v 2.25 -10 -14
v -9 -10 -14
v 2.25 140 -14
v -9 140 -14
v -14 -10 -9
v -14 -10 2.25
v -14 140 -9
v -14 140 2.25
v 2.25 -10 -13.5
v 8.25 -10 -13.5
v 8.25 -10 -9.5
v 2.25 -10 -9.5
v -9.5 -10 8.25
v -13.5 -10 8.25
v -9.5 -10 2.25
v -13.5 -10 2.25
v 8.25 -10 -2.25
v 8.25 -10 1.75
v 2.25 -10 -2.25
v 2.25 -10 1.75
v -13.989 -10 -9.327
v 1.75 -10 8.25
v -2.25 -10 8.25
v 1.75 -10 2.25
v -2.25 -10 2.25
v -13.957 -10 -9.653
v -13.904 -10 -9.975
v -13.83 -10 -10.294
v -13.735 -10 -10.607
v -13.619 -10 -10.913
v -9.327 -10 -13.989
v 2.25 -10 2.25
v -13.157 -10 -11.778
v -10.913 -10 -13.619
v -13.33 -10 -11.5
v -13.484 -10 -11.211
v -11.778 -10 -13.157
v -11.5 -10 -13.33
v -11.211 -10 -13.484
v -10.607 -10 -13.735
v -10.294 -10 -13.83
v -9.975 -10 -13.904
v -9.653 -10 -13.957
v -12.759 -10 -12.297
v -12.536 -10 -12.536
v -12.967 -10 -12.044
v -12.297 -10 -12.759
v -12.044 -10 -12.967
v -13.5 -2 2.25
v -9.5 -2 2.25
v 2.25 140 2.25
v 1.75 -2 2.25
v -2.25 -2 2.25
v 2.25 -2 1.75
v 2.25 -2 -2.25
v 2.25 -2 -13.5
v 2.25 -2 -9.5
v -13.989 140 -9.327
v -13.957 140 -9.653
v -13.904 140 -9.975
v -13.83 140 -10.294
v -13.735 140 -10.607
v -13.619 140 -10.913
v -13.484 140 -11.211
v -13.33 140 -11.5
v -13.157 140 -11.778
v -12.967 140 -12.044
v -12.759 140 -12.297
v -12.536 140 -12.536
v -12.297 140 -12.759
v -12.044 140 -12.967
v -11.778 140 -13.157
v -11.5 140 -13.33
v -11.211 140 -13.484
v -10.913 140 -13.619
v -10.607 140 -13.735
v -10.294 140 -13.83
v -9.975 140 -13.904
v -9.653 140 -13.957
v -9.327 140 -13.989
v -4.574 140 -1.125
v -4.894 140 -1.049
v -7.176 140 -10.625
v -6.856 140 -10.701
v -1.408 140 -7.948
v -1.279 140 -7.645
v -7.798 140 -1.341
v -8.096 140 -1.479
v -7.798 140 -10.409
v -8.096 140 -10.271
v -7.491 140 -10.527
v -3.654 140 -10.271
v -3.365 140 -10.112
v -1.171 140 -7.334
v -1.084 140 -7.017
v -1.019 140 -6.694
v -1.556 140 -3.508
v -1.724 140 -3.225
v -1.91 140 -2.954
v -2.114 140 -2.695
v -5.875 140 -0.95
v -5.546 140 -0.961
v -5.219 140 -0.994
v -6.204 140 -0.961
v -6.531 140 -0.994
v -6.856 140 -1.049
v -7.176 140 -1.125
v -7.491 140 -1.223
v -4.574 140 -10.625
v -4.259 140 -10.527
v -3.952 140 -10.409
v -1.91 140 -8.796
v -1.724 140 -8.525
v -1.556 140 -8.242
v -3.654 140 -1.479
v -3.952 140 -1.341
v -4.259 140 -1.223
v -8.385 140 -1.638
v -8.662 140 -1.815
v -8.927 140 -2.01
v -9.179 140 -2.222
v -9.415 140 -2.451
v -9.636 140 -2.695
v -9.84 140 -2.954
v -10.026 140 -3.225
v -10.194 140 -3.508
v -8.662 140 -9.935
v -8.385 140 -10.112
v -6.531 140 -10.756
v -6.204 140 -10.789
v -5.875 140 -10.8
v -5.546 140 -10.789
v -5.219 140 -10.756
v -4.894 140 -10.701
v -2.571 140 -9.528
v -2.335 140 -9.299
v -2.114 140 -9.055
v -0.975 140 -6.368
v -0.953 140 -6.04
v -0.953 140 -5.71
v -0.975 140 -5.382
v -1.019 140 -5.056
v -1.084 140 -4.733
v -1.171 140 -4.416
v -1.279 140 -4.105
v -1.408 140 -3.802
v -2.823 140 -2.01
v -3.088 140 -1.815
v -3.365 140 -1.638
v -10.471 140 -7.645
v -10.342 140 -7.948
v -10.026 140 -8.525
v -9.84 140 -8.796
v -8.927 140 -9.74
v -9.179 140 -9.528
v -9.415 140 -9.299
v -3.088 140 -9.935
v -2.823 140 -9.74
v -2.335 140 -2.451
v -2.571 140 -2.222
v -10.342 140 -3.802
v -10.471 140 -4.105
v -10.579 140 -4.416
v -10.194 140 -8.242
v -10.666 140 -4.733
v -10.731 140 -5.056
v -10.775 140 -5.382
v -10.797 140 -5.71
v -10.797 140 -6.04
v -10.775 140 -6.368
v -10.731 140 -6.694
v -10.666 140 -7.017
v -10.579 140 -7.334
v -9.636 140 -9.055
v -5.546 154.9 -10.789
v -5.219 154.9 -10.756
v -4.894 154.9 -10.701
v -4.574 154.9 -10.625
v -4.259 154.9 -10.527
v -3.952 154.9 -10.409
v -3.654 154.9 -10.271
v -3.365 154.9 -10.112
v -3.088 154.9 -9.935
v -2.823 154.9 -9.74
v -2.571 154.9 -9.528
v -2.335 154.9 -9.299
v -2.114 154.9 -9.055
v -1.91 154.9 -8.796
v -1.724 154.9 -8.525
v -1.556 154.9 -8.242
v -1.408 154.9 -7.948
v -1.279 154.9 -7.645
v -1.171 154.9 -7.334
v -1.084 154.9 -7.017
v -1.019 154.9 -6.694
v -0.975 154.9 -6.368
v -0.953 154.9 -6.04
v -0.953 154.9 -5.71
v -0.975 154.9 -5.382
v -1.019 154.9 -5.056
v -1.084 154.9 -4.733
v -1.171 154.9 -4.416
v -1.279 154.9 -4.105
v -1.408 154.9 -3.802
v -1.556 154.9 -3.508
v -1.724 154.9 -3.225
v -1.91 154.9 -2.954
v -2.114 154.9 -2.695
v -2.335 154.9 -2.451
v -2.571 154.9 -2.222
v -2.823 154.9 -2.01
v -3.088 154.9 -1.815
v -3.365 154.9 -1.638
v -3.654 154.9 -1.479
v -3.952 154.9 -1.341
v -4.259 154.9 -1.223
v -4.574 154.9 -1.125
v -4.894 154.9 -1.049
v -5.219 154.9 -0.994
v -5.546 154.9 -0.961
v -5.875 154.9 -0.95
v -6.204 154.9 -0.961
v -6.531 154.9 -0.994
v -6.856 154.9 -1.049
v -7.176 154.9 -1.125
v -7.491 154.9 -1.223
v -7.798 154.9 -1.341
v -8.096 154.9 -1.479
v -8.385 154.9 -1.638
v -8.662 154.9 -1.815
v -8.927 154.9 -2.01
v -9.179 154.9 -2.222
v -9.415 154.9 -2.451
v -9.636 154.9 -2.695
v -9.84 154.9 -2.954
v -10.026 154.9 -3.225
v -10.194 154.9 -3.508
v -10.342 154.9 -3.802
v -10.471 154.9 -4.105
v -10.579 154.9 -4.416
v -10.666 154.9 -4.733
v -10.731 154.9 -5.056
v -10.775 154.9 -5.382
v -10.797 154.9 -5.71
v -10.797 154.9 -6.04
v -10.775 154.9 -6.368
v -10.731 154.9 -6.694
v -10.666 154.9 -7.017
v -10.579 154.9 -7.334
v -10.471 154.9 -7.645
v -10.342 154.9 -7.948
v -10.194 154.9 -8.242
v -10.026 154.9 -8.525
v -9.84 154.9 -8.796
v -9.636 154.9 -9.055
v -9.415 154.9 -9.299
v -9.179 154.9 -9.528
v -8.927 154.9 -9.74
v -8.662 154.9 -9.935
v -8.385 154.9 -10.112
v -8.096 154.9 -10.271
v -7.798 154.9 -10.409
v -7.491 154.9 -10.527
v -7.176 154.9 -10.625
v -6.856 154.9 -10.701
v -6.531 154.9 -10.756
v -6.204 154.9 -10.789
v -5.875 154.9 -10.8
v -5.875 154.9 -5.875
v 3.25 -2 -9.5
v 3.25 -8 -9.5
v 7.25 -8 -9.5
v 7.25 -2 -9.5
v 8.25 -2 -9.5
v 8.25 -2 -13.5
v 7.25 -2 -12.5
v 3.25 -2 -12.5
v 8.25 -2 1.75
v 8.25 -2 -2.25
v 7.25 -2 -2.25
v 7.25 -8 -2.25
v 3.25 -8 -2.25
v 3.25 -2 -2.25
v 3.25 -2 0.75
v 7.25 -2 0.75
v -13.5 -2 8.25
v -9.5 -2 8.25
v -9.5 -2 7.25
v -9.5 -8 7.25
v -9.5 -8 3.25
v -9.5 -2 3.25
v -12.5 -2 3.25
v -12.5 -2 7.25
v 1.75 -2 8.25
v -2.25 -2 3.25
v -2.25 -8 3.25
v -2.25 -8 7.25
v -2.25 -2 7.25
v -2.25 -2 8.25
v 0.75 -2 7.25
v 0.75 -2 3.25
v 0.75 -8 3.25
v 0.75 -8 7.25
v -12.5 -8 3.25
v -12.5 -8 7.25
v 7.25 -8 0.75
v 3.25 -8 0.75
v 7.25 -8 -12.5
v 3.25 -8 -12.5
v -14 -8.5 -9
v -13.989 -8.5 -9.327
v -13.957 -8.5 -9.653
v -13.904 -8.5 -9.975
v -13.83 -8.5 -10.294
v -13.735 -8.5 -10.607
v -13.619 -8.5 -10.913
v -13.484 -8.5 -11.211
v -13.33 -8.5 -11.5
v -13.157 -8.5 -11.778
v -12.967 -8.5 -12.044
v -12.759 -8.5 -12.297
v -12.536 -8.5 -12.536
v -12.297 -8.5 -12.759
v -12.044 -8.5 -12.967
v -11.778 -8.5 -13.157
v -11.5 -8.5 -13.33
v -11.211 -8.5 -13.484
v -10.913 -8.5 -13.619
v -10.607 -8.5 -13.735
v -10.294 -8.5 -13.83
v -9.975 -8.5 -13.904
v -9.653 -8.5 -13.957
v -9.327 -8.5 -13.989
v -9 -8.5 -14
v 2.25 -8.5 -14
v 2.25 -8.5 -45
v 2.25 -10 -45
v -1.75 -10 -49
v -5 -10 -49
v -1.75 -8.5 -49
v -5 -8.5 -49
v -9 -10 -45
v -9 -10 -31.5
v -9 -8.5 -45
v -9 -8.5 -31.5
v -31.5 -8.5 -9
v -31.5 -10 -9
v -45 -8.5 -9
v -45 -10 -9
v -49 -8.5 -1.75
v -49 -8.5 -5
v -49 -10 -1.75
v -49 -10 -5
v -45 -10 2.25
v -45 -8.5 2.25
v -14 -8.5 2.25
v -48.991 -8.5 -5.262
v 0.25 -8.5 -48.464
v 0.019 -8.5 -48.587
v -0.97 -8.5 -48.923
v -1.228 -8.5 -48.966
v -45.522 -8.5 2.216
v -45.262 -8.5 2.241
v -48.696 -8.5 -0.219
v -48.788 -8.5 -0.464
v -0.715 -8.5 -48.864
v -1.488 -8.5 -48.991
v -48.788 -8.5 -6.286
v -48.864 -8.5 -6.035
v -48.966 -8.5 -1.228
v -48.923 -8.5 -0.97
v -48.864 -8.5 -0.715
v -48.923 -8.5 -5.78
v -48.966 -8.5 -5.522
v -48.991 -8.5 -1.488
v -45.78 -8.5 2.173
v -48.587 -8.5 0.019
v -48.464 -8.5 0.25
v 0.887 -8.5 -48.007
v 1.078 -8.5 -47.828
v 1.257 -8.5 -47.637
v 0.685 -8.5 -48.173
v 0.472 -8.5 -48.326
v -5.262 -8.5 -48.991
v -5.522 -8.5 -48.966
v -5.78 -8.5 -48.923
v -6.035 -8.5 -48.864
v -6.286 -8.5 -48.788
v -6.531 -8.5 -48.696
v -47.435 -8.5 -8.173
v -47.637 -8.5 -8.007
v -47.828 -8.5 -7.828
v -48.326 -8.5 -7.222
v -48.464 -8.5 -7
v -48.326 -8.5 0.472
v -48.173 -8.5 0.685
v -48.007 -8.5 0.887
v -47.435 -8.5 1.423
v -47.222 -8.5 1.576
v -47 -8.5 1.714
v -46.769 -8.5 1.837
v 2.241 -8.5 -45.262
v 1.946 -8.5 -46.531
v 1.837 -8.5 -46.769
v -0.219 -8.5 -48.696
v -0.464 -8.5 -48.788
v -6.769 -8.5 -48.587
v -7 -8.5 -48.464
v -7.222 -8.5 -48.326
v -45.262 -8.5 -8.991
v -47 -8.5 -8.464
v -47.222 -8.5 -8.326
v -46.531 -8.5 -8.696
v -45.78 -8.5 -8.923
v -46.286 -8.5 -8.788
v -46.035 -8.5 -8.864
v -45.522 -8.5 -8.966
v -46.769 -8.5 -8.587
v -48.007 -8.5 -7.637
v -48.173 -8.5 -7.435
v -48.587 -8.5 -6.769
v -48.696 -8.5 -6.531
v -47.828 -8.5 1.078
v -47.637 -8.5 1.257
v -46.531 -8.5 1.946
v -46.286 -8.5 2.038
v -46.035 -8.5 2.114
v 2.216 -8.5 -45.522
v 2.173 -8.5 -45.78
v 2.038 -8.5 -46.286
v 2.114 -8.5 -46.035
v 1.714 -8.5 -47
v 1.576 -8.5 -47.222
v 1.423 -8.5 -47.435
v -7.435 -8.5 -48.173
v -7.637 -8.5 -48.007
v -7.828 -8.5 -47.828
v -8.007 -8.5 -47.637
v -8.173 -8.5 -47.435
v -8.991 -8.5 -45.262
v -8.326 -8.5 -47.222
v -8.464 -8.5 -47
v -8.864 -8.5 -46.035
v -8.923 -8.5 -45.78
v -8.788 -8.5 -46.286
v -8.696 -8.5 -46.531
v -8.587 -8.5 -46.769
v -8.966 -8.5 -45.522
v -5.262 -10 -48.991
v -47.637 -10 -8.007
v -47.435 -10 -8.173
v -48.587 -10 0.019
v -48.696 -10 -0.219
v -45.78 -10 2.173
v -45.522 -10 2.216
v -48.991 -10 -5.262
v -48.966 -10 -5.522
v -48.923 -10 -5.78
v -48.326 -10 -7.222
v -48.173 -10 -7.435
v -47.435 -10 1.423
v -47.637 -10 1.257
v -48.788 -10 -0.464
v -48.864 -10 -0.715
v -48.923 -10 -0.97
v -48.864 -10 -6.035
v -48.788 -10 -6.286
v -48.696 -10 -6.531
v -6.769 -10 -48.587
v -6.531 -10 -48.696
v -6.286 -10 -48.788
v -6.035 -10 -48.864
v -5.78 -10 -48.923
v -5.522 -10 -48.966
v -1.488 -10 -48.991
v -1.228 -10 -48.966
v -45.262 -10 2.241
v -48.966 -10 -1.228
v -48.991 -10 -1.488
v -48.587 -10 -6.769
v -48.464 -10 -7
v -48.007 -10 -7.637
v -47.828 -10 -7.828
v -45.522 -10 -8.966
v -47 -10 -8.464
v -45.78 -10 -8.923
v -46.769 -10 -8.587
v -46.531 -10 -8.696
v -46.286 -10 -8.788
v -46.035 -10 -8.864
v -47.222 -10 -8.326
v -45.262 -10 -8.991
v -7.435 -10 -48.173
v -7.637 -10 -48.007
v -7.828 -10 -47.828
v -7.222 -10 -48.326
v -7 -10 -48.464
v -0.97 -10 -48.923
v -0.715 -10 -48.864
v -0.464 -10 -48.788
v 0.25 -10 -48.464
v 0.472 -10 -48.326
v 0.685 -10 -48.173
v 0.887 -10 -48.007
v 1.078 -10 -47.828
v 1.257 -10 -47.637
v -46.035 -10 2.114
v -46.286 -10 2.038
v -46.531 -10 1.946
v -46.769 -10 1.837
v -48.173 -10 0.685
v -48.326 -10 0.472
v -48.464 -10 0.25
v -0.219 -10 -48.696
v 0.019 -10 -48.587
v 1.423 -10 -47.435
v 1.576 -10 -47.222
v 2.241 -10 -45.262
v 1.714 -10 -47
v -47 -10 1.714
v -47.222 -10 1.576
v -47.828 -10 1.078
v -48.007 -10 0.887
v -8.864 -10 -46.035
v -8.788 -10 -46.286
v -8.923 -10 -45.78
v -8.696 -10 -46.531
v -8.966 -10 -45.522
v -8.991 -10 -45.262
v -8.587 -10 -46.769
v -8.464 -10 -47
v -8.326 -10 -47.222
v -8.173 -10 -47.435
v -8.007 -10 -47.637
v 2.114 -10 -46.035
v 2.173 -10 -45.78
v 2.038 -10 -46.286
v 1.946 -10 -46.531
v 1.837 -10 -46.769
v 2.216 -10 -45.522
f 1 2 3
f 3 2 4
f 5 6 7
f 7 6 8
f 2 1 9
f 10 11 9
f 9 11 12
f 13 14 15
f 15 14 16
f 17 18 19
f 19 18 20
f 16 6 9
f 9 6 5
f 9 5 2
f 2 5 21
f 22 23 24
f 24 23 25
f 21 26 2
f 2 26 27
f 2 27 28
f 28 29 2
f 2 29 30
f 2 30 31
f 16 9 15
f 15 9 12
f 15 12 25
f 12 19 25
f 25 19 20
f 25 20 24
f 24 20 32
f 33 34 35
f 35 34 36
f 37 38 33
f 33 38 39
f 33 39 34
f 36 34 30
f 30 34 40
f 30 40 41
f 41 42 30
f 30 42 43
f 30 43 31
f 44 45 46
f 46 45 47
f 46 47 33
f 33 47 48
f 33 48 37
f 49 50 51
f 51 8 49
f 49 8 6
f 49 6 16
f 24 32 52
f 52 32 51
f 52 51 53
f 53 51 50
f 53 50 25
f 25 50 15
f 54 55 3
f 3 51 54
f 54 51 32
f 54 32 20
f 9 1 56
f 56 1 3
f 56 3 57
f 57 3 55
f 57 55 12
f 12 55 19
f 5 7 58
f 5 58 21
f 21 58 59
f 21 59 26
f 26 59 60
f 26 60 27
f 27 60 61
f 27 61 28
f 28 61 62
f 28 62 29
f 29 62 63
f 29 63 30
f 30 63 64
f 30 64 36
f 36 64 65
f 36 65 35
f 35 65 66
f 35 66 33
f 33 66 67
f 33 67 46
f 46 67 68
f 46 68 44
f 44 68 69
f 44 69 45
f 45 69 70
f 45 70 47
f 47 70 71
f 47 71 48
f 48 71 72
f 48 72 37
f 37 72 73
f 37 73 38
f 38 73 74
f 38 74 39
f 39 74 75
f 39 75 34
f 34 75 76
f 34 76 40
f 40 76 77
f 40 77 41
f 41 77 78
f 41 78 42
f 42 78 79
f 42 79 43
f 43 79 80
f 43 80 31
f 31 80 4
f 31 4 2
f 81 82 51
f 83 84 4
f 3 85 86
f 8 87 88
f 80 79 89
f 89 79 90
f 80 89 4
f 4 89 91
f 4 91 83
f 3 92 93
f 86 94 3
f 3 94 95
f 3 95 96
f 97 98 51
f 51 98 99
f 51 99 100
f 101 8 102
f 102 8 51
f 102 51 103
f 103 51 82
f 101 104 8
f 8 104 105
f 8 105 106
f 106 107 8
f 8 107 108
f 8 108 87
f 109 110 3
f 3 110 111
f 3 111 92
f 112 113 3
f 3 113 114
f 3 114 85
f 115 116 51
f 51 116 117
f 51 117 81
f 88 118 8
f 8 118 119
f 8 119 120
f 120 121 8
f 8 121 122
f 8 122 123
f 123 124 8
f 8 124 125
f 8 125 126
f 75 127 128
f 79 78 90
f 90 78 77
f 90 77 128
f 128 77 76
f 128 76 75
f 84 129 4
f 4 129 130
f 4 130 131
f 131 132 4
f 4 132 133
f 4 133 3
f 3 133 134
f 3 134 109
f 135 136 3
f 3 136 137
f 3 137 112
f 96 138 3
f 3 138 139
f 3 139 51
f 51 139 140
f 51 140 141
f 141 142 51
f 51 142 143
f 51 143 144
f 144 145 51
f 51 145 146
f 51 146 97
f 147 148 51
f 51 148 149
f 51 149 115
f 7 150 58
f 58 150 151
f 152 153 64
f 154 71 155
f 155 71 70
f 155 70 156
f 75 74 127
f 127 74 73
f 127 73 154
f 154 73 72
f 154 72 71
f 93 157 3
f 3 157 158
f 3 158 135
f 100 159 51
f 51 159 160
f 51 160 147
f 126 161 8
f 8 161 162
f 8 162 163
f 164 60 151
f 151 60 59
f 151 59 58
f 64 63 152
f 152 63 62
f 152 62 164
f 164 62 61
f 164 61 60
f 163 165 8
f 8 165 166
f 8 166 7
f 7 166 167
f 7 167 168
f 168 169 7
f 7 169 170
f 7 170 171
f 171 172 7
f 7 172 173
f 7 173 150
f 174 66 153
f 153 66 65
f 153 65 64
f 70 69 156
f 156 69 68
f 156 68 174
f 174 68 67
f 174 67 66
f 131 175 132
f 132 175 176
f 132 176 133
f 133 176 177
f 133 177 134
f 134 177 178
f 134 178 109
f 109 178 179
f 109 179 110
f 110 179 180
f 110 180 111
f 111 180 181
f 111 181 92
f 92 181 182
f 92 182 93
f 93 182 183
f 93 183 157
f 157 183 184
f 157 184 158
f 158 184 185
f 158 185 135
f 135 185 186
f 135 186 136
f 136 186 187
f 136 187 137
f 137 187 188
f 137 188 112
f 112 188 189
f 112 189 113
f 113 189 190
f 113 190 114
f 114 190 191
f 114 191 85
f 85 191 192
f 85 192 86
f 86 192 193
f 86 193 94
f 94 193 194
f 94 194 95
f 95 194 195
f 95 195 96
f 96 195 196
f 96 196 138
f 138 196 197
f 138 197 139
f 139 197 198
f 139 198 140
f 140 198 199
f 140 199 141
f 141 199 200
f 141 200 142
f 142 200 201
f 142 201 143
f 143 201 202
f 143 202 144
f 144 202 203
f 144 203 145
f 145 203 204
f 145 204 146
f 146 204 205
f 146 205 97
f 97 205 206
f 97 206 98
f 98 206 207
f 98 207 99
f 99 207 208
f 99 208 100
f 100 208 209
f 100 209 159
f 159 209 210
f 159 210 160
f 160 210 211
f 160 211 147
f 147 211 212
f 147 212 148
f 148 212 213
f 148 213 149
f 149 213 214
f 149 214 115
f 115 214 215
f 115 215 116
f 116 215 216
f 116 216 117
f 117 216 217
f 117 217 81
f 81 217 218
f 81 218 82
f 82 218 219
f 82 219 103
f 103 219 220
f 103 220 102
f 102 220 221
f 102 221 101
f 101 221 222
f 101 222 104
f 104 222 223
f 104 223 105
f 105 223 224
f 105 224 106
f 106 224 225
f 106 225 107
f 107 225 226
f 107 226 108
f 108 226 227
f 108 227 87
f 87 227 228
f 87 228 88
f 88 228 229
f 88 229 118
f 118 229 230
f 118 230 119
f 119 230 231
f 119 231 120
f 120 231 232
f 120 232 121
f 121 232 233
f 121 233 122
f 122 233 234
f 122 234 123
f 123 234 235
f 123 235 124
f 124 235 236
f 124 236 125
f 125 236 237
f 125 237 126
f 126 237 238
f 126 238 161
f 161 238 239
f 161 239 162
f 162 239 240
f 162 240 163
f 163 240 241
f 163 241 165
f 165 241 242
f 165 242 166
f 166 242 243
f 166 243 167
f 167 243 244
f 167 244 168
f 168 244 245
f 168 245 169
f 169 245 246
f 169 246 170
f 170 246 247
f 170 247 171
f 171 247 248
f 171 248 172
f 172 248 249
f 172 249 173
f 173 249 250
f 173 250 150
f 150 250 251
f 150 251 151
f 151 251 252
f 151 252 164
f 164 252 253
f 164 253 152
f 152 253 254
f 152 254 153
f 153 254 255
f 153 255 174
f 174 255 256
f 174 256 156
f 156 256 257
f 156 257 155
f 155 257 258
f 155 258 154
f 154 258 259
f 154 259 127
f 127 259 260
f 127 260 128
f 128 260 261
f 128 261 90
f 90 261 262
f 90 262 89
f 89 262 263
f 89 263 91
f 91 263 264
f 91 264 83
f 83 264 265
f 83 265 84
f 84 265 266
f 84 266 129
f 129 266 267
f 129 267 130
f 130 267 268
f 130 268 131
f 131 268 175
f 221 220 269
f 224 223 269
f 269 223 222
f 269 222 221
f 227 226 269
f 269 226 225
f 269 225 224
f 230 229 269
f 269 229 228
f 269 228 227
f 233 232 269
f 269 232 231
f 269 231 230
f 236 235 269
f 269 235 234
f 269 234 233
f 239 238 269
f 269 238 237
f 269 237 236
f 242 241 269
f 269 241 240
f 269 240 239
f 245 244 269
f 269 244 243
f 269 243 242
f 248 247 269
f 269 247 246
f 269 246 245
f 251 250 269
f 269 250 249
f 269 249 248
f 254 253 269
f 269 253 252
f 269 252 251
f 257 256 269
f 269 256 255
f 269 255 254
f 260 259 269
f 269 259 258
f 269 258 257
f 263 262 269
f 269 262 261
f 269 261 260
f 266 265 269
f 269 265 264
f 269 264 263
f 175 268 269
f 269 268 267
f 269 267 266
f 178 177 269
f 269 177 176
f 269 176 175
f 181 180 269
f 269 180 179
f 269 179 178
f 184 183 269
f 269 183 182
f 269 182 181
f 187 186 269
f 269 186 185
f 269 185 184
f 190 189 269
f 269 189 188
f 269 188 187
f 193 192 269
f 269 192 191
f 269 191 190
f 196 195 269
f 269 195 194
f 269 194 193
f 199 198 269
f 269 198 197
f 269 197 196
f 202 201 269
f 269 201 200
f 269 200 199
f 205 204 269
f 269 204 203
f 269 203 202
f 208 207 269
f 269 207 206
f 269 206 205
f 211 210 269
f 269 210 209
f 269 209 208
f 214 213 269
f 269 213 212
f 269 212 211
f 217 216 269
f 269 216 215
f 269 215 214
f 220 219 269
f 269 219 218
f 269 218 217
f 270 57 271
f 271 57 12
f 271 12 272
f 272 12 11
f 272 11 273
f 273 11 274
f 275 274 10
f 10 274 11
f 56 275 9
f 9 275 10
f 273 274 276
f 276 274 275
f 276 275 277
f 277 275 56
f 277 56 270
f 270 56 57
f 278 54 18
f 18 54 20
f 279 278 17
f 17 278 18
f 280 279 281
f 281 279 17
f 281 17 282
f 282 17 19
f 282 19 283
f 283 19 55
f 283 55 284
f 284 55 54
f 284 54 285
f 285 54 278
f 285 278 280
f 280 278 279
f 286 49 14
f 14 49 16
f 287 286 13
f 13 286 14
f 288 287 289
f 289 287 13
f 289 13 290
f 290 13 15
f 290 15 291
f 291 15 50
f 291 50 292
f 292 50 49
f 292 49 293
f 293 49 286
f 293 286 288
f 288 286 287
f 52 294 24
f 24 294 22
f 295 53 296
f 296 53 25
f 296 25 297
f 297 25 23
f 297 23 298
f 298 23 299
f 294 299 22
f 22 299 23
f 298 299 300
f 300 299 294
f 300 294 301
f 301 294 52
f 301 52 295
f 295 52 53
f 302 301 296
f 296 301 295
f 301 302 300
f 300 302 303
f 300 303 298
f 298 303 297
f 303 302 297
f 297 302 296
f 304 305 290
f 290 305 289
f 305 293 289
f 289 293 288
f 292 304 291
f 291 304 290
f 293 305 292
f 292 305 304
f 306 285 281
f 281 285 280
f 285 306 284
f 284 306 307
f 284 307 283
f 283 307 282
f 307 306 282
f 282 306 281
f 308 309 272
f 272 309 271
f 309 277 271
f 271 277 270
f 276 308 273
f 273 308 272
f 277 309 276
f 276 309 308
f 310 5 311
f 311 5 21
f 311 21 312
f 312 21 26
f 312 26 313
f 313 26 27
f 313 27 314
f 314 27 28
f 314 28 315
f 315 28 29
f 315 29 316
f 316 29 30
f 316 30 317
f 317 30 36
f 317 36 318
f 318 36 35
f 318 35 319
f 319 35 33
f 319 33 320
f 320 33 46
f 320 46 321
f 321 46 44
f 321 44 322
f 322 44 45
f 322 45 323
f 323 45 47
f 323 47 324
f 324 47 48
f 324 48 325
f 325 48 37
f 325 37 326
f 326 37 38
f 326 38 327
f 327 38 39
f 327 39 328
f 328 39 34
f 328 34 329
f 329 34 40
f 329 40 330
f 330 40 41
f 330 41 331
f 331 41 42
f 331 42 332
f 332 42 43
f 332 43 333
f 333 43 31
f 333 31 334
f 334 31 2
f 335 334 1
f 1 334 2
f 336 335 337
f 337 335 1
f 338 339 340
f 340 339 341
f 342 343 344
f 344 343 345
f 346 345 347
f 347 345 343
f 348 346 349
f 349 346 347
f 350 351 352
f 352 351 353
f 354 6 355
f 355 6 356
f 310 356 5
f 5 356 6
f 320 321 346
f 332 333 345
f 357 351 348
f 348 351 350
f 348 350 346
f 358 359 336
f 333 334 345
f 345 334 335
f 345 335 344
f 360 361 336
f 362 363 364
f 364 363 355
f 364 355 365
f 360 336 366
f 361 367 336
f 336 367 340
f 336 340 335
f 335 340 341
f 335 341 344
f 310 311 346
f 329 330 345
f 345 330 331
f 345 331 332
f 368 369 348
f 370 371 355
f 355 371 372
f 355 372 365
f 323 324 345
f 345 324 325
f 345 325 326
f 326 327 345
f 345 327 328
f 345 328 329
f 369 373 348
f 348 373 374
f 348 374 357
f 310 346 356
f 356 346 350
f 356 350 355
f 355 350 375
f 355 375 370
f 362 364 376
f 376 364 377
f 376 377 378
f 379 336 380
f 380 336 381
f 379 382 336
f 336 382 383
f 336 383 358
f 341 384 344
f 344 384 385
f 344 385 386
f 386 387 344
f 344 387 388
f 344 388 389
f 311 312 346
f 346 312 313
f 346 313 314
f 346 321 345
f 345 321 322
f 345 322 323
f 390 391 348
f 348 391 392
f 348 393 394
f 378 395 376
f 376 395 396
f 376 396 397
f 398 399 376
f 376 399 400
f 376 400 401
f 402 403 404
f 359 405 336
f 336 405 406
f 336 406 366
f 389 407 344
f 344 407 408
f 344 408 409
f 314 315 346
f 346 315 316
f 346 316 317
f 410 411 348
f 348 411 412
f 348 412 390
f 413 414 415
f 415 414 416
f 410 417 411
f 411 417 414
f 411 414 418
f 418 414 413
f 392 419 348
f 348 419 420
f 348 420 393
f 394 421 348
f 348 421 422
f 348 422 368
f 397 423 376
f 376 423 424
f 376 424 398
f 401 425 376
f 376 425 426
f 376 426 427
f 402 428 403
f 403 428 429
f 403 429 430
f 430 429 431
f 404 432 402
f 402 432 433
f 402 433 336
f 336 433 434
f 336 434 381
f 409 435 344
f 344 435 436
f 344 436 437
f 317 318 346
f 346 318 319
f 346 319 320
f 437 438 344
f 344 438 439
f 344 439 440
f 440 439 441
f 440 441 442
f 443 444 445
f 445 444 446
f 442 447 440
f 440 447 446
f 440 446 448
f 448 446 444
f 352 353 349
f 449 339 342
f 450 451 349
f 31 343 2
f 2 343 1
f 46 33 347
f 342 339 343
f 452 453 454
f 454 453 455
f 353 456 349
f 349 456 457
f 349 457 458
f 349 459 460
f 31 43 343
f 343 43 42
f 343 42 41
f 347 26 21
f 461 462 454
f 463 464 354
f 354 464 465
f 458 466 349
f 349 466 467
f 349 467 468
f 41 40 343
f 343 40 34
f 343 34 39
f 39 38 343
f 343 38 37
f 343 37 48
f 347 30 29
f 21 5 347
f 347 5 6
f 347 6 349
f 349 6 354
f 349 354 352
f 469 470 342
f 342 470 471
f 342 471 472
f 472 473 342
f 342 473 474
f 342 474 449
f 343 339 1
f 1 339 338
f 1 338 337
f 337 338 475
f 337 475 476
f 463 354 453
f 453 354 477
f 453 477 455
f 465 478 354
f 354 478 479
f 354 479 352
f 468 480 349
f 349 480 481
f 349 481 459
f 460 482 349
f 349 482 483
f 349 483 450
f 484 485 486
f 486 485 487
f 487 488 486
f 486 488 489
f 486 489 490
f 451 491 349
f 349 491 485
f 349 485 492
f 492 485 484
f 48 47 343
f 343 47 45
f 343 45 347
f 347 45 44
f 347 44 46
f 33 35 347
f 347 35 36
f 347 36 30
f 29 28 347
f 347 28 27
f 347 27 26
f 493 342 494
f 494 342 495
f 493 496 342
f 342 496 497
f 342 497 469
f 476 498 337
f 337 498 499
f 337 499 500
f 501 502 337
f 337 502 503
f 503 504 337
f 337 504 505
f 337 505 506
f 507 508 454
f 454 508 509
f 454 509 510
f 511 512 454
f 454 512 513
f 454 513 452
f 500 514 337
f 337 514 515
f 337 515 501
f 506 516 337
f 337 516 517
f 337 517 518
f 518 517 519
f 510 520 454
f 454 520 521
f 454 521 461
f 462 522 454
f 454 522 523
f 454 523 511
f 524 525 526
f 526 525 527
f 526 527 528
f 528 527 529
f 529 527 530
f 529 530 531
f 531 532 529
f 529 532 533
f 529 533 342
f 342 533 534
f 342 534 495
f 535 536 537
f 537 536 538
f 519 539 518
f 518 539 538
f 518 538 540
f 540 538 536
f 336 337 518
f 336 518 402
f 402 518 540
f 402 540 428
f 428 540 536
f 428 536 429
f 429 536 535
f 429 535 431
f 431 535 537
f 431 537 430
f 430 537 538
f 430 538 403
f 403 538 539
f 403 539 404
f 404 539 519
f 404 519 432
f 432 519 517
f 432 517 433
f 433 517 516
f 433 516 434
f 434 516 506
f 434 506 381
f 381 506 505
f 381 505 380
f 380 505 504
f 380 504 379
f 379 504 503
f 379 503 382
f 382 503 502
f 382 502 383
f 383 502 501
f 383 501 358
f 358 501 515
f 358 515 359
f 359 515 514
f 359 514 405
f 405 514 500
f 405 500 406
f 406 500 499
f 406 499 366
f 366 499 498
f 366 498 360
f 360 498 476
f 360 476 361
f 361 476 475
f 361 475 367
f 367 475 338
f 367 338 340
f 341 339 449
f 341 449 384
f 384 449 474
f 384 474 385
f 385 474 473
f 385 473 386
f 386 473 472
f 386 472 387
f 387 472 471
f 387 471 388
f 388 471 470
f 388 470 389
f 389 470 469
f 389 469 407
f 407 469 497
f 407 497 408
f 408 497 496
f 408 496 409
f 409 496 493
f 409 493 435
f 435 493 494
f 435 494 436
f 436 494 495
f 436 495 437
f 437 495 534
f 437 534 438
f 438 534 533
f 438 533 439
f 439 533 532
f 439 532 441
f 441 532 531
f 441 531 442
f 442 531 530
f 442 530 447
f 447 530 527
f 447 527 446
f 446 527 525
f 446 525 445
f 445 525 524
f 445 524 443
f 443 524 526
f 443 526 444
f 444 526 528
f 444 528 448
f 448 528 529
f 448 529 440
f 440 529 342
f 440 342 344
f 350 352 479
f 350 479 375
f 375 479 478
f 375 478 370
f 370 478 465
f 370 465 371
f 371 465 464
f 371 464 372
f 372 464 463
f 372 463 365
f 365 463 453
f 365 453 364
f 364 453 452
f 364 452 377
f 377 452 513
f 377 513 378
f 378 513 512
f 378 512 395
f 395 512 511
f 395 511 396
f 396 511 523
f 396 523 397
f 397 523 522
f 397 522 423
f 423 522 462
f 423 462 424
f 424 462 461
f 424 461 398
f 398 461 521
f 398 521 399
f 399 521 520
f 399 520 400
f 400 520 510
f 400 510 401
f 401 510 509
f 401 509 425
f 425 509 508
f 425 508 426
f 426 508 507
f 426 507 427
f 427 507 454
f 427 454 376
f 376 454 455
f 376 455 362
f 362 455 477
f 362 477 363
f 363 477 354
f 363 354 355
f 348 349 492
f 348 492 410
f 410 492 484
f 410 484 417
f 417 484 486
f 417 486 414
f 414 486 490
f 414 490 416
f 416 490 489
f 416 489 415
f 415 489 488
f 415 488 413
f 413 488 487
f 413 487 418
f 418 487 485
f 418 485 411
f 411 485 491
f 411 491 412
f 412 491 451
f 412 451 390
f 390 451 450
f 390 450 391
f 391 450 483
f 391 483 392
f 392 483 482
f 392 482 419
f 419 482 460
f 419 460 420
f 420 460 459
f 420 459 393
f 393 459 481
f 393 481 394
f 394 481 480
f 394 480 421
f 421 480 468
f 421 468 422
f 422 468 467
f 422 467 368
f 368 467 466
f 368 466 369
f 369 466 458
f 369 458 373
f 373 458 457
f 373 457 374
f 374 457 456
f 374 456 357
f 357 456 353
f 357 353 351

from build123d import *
from build123d.topology import SkipClean

# Parameters (mm, degrees)
SKETCH1_W                = 30
SKETCH1_H                = 30
BOSS_EXTRUDE1_DEPTH      = 80
SKETCH2_R                = 6
BOSS_EXTRUDE2_DEPTH      = 22
CUT_EXTRUDE1_DEPTH       = 83.764726786
BOSS_EXTRUDE3_DEPTH      = 100
BOSS_EXTRUDE5_DEPTH      = 2
BOSS_EXTRUDE6_DEPTH      = 23
BOSS_EXTRUDE7_DEPTH      = 25
FILLET1_R                = 2
SKETCH11_R               = 6.055782361
CUT_EXTRUDE2_DEPTH       = 2.125
SKETCH12_W               = 13.25
SKETCH12_H               = 8.5
CUT_EXTRUDE4_DEPTH       = 13.25
CUT_EXTRUDE5_REACH       = 204.341
SKETCH15_W               = 3.75
SKETCH15_H               = 3.75
FILLET2_R                = 1
CUT_EXTRUDE7_START       = 22
SKETCH16_R               = 6
CUT_EXTRUDE7_DEPTH       = 22
SKETCH17_R               = 15
BOSS_EXTRUDE8_DEPTH      = 40
FILLET3_R                = 1
SKETCH18_R               = 15
SKETCH18_R_2             = 7.5
BOSS_EXTRUDE9_DEPTH      = 2
SKETCH22_R               = 209.016423622
CUT_EXTRUDE8_DEPTH       = 225.815151847
SKETCH23_W               = 22.070362909
SKETCH23_H               = 16.212180161
CUT_EXTRUDE9_DEPTH       = 65.514197169
SKETCH24_R               = 15
BOSS_EXTRUDE10_DEPTH     = 40
SKETCH25_R               = 15
SKETCH25_R_2             = 7.5
BOSS_EXTRUDE11_DEPTH     = 2
BOSS_EXTRUDE12_DEPTH     = 40
SKETCH29_R               = 2
CUT_EXTRUDE10_DEPTH      = 209.128716183
SKETCH30_R               = 3.025
CUT_EXTRUDE11_DEPTH      = 2.1
CUT_EXTRUDE12_DEPTH      = 111.386253673
CUT_EXTRUDE12_DEPTH_BACK = 111.386253673
SKETCH31_W               = 80
SKETCH31_H               = 80
BOSS_EXTRUDE13_DEPTH     = 190
CUT_EXTRUDE13_DEPTH      = 191.213565988
CUT_EXTRUDE13_DEPTH_BACK = 191.213565988
SKETCH33_W               = 105.751798623
SKETCH33_H               = 51.18837061
SKETCH34_R               = 4.925
BOSS_EXTRUDE14_DEPTH     = 14.9
SKETCH35_W               = 6
SKETCH35_H               = 4
SKETCH35_W_2             = 4
SKETCH35_H_2             = 6
BOSS_EXTRUDE15_DEPTH     = 8
SKETCH36_W               = 13.25
SKETCH36_H               = 4
SKETCH36_W_2             = 4
SKETCH36_H_2             = 13.25
CUT_EXTRUDE14_DEPTH      = 6
BOSS_EXTRUDE16_DEPTH     = 1.5
FILLET4_R                = 4


with BuildPart() as part:
    # Sketch1 → Boss-Extrude1 (new body)
    with BuildSketch(Plane(origin=(0, 0, 0), x_dir=(1, 0, 0), z_dir=(0, 1, 0))):
        Rectangle(SKETCH1_W, SKETCH1_H)
    extrude(amount=BOSS_EXTRUDE1_DEPTH)

    # Sketch2 → Boss-Extrude2 (add)
    with BuildSketch(Plane(origin=(0, 80, 0), x_dir=(1, 0, 0), z_dir=(0, 1, 0))):
        with Locations(Location((9, -9, 0), (0, 0, 270))):
            Circle(SKETCH2_R)
    extrude(amount=BOSS_EXTRUDE2_DEPTH)

    # Sketch3 → Cut-Extrude1 (cut, through all)
    with BuildSketch(Plane(origin=(0, 80, 0), x_dir=(1, 0, 0), z_dir=(0, 1, 0))):
        with BuildLine():
            Line((9, -15), (15, -15))
            Line((15, -15), (15, -9))
            ThreePointArc((15, -9), (13.242640687, -13.242640687), (9, -15))
        make_face()
    extrude(amount=-CUT_EXTRUDE1_DEPTH, mode=Mode.SUBTRACT)

    # Sketch4 → Boss-Extrude3 (add)
    with BuildSketch(Plane(origin=(0, 80, 0), x_dir=(1, 0, 0), z_dir=(0, 1, 0))):
        Polygon((-8.25, 11.25), (-8.25, 8.25), (-11.25, 8.25), (-15, 8.25), (-15, 11.25), (-11.25, 11.25), (-11.25, 15), (-8.25, 15), align=None)
        Polygon((-1.75, 1.75), (-11.25, 1.75), (-15, 1.75), (-15, -1.25), (-11.25, -1.25), (1.25, -1.25), (1.25, 11.25), (1.25, 15), (-1.75, 15), (-1.75, 11.25), align=None)
    extrude(amount=BOSS_EXTRUDE3_DEPTH)

    # Sketch6 → Boss-Extrude5 (add)
    with BuildSketch(Plane.XZ):
        with BuildLine():
            Line((15, -15), (7, -15))
            Line((7, -15), (7, -99.5))
            ThreePointArc((7, -99.5), (2.757359313, -109.742640687), (13, -105.5))
            Line((13, -105.5), (15, -105.5))
            Line((15, -105.5), (15, -15))
        make_face()
    extrude(amount=-BOSS_EXTRUDE5_DEPTH)

    # Sketch7 → Boss-Extrude6 (add)
    with SkipClean():  # the faces are left unmerged after this step: merging them gives an invalid solid
        with BuildSketch(Plane(origin=(0, 2, 0), x_dir=(1, 0, 0), z_dir=(0, 1, 0))):
            with BuildLine():
                Line((9, 111.156854249), (9, 108.964101615))
                ThreePointArc((9, 108.964101615), (7, 101.5), (5, 108.964101615))
                Line((5, 108.964101615), (5, 111.156854249))
                ThreePointArc((5, 111.156854249), (1.086408642, 104.485388128), (7, 99.5))
                Line((7, 99.5), (7, 15))
                Line((7, 15), (15, 15))
                Line((15, 15), (15, 105.5))
                Line((15, 105.5), (13, 105.5))
                ThreePointArc((13, 105.5), (11.898979486, 108.964101615), (9, 111.156854249))
            make_face()
        extrude(amount=BOSS_EXTRUDE6_DEPTH)

    # Sketch9 → Boss-Extrude7 (add)
    with SkipClean():  # the faces are left unmerged after this step: merging them gives an invalid solid
        with BuildSketch(Plane.XZ):
            with BuildLine():
                Line((-15, 15), (-15, 7))
                Line((-15, 7), (-126.175, 7))
                ThreePointArc((-126.175, 7), (-126.252697751, 6.037536458), (-126.48377869, 5.1))
                Line((-126.48377869, 5.1), (-128.797778509, 5.1))
                ThreePointArc((-128.797778509, 5.1), (-136.05, 7), (-128.797778509, 8.9))
                Line((-128.797778509, 8.9), (-126.3, 8.9))
                ThreePointArc((-126.3, 8.9), (-128.491885554, 11.955834237), (-132.050001601, 13.173329766))
                Line((-132.050001601, 13.173329766), (-132.050001601, 15))
                Line((-132.050001601, 15), (-15, 15))
            make_face()
        extrude(amount=-BOSS_EXTRUDE7_DEPTH)

    # Fillet1
    fillet1_edges = [part.edges().sort_by_distance(p)[0] for p in [
        (-126.175, 12.5, 7),
    ]]
    fillet(fillet1_edges, radius=FILLET1_R)

    # Sketch11 → Cut-Extrude2 (cut)
    with SkipClean():  # the faces are left unmerged after this step: merging them gives an invalid solid
        with BuildSketch(Plane.XZ):
            with Locations((-132.175, 7)):
                Circle(SKETCH11_R)
        extrude(amount=-CUT_EXTRUDE2_DEPTH, mode=Mode.SUBTRACT)

    # Sketch12 → Cut-Extrude4 (cut)
    with SkipClean():  # the faces are left unmerged after this step: merging them gives an invalid solid
        with BuildSketch(Plane.ZY.offset(15)):
            with Locations((-8.375, 72.75)):
                Rectangle(SKETCH12_W, SKETCH12_H)
        extrude(amount=-CUT_EXTRUDE4_DEPTH, mode=Mode.SUBTRACT)

    # Sketch15 → Cut-Extrude5 (cut, up to next)
    with BuildSketch(Plane(origin=(0, 80, 0), x_dir=(1, 0, 0), z_dir=(0, 1, 0)), mode=Mode.PRIVATE) as cut_extrude5_sk1:
        with Locations((-13.125, 13.125)):
            Rectangle(SKETCH15_W, SKETCH15_H)
    cut_extrude5_tool1 = extrude(cut_extrude5_sk1.sketch, amount=-CUT_EXTRUDE5_REACH, mode=Mode.PRIVATE) & part.part
    add(cut_extrude5_tool1.solids().sort_by_distance((-13.125, 80, -13.125))[0], mode=Mode.SUBTRACT)

    # Fillet2
    fillet2_edges = [part.edges().sort_by_distance(p)[0] for p in [
        (-11.25, 130, -15),
        (-11.25, 130, -11.25),
        (-15, 130, -11.25),
        (-15, 130, 1.25),
        (1.25, 130, -15),
    ]]
    fillet(fillet2_edges, radius=FILLET2_R)

    # Sketch16 → Cut-Extrude7 (cut)
    with SkipClean():  # the faces are left unmerged after this step: merging them gives an invalid solid
        with BuildSketch(Plane(origin=(0, 80, 0), x_dir=(1, 0, 0), z_dir=(0, 1, 0)).offset(CUT_EXTRUDE7_START)):
            with Locations((9, -9)):
                Circle(SKETCH16_R)
        extrude(amount=-CUT_EXTRUDE7_DEPTH, mode=Mode.SUBTRACT)


with BuildPart() as cut_extrude7_kept_piece:
    # of the separate pieces the step leaves, the one the design keeps (cut_extrude7_pieces_kept)
    add(part.part.solids().sort_by_distance((-15, 80, 0.25))[0])

    # Sketch17 → Boss-Extrude8 (add)
    with SkipClean():  # the faces are left unmerged after this step: merging them gives an invalid solid
        with BuildSketch(Plane(origin=(0, 180, 0), x_dir=(1, 0, 0), z_dir=(0, 1, 0))):
            with BuildLine():
                Line((-14, -1.25), (-14, -4.216394713))
                ThreePointArc((-14, -4.216394713), (-14.384018227, -33.129332993), (11.657578086, -20.561885701))
                ThreePointArc((11.657578086, -20.561885701), (14.532144442, -14.532144442), (20.561885701, -11.657578086))
                ThreePointArc((20.561885701, -11.657578086), (33.129332993, 14.384018227), (4.216394713, 14))
                Line((4.216394713, 14), (1.25, 14))
                Line((1.25, 14), (1.25, -1.25))
                Line((1.25, -1.25), (-14, -1.25))
            make_face()
            with Locations(Location((18.79163056, 5.25, 0), (0, 0, 270))):
                Circle(SKETCH17_R, mode=Mode.SUBTRACT)
            with Locations(Location((-5.25, -18.79163056, 0), (0, 0, 270))):
                Circle(SKETCH17_R, mode=Mode.SUBTRACT)
        extrude(amount=-BOSS_EXTRUDE8_DEPTH)

    # Fillet3
    # the kernel refuses this fillet: 1 mm, written as the material it adds along each edge
    with BuildSketch(Plane(origin=(-14, 140, 1.25), x_dir=(-0.9659258262890684, 0, -0.25881904510252046), z_dir=(0, 1, 0))) as fillet3_piece_1:
        with BuildLine():
            CenterArc((0.776457135, 0.965925826), FILLET3_R, 195, 60)
            Line((-0.189468691, 0.707106781), (0, 0))
            ThreePointArc((0, 0), (0.258819045, 0.034074174), (0.51763809, 0))
        make_face()
    extrude(amount=40)
    with BuildSketch(Plane(origin=(-14, 180, 4.216394713), x_dir=(0, 0, -1), z_dir=(0, -1, 0))) as fillet3_piece_2:
        with BuildLine():
            CenterArc((0.555444904, -1), FILLET3_R, 90, 57.202831704)
            ThreePointArc((-0.285148471, -0.458333333), (-0.140754957, -0.230298516), (0, 0))
            Line((0, 0), (0.555444904, 0))
        make_face()
    extrude(amount=40)
    with BuildSketch(Plane(origin=(1.25, 140, -14), x_dir=(-0.2588190451025201, 0, -0.9659258262890685), z_dir=(0, 1, 0))) as fillet3_piece_3:
        with BuildLine():
            CenterArc((0.776457135, -0.965925826), FILLET3_R, 105, 60)
            Line((-0.189468691, -0.707106781), (0, 0))
            ThreePointArc((0, 0), (0.258819045, -0.034074174), (0.51763809, 0))
        make_face()
    extrude(amount=40)
    with BuildSketch(Plane(origin=(4.216394713, 180, -14), x_dir=(-1, 0, 0), z_dir=(0, -1, 0))) as fillet3_piece_4:
        with BuildLine():
            CenterArc((0.555444904, 1), FILLET3_R, 212.797168296, 57.202831704)
            ThreePointArc((-0.285148471, 0.458333333), (-0.140754957, 0.230298516), (0, 0))
            Line((0, 0), (0.555444904, 0))
        make_face()
    extrude(amount=40)

    # Sketch18 → Boss-Extrude9 (add)
    with SkipClean():  # the faces are left unmerged after this step: merging them gives an invalid solid
        with BuildSketch(Plane.XZ.offset(-140)):
            with Locations(Location((-5.25, 18.79163056, 0), (0, 0, 90))):
                Circle(SKETCH18_R)
            with Locations(Location((-5.25, 18.79163056, 0), (0, 0, 270))):
                Circle(SKETCH18_R_2, mode=Mode.SUBTRACT)
        boss_extrude9 = extrude(amount=-BOSS_EXTRUDE9_DEPTH)

    # Sketch21 → Revolve1 (revolve)
    with SkipClean():  # the faces are left unmerged after this step: merging them gives an invalid solid
        with BuildSketch(Plane(origin=(-5.25, 0, 0), x_dir=(0, 0, -1), z_dir=(-1, 0, 0)), mode=Mode.PRIVATE) as revolve1_sk:
            Polygon((-11.29163056, -142), (-3.79163056, -154.5), (-3.79163056, -142), align=None)
        revolve1 = revolve(revolve1_sk.sketch.rotate(Axis((-5.25, 1065, 18.79163056), (0, -1, 0)), 180), axis=Axis((-5.25, 1065, 18.79163056), (0, -1, 0)))

    # Mirror1: Boss-Extrude9, Revolve1 across plane
    with SkipClean():  # the faces are left unmerged after this step: merging them gives an invalid solid
        add(boss_extrude9.mirror(Plane(origin=(0, 0, 0), x_dir=(0.7071067811865478, 0, 0.7071067811865472), z_dir=(0.7071067811865475, 0, -0.7071067811865477))))
        add(revolve1.mirror(Plane(origin=(0, 0, 0), x_dir=(0.7071067811865478, 0, 0.7071067811865472), z_dir=(0.7071067811865475, 0, -0.7071067811865477))))

    # Sketch22 → Cut-Extrude8 (cut, through all)
    with BuildSketch(Plane.XZ.offset(-140)):
        Circle(SKETCH22_R)
    extrude(amount=CUT_EXTRUDE8_DEPTH, mode=Mode.SUBTRACT)


with BuildPart() as cut_extrude8_piece_1:
    # of the separate pieces the step leaves, piece 1, a body of its own (cut_extrude8_pieces)
    add(cut_extrude7_kept_piece.part.solids().sort_by_distance((4.501543184, 180, -14.458333333))[0])

    # Sketch24 → Boss-Extrude10 (add)
    with BuildSketch(Plane(origin=(0, 180, 0), x_dir=(1, 0, 0), z_dir=(0, 1, 0))):
        with BuildLine():
            ThreePointArc((13.834213525, -37.57835306), (39.612293374, -39.612293374), (37.57835306, -13.834213525))
            ThreePointArc((37.57835306, -13.834213525), (33.79372713, -8.329895406), (34.31915027, -1.67070312))
            ThreePointArc((34.31915027, -1.67070312), (28.778505526, -8.507264569), (20.561885701, -11.657578086))
            ThreePointArc((20.561885701, -11.657578086), (14.532144442, -14.532144442), (11.657578086, -20.561885701))
            ThreePointArc((11.657578086, -20.561885701), (8.507264569, -28.778505526), (1.67070312, -34.31915027))
            ThreePointArc((1.67070312, -34.31915027), (8.329895406, -33.79372713), (13.834213525, -37.57835306))
        make_face()
        with Locations(Location((27.591478094, -27.591478094, 0), (0, 0, 270))):
            Circle(SKETCH24_R, mode=Mode.SUBTRACT)
    extrude(amount=-BOSS_EXTRUDE10_DEPTH)

    # Sketch25 → Boss-Extrude11 (add)
    with BuildSketch(Plane.XZ.offset(-140)):
        with Locations(Location((27.591478094, 27.591478094, 0), (0, 0, 90))):
            Circle(SKETCH25_R)
        with Locations(Location((27.591478094, 27.591478094, 0), (0, 0, 270))):
            Circle(SKETCH25_R_2, mode=Mode.SUBTRACT)
    extrude(amount=-BOSS_EXTRUDE11_DEPTH)

    # Sketch26 → Revolve2 (revolve)
    with BuildSketch(Plane(origin=(0, 0, 0), x_dir=(-0.7071067811865476, 0, -0.7071067811865475), z_dir=(0.7071067811865475, 0, -0.7071067811865476)), mode=Mode.PRIVATE) as revolve2_sk:
        Polygon((-24.020242526, 142), (-24.020242526, 154.5), (-31.520242526, 142), align=None)
    revolve(revolve2_sk.sketch.rotate(Axis((27.591478094, 126.995387654, 27.591478094), (0, 1, 0)), 135), axis=Axis((27.591478094, 126.995387654, 27.591478094), (0, 1, 0)))

    # Sketch27 → Boss-Extrude12 (add)
    with BuildSketch(Plane(origin=(0, 180, 0), x_dir=(1, 0, 0), z_dir=(0, 1, 0))):
        Polygon((2.25, -2.25), (2.25, 72.75), (-1.75, 72.75), (-1.75, 1.75), (-72.75, 1.75), (-72.75, -2.25), align=None)
    extrude(amount=-BOSS_EXTRUDE12_DEPTH)

    # Sketch29 → Cut-Extrude10 (cut, through all)
    with BuildSketch(Plane.XY.offset(2.25)):
        with Locations((-24, 144)):
            Circle(SKETCH29_R)
        with Locations((-24, 176)):
            Circle(SKETCH29_R)
        with Locations((-68.75, 144)):
            Circle(SKETCH29_R)
        with Locations((-68.75, 176)):
            Circle(SKETCH29_R)
    cut_extrude10 = extrude(amount=-CUT_EXTRUDE10_DEPTH, mode=Mode.SUBTRACT)

    # Sketch30 → Cut-Extrude11 (cut)
    with BuildSketch(Plane(origin=(0, 0, -1.75), x_dir=(-1, 0, 0), z_dir=(0, 0, -1))):
        with Locations((14.135, 148)):
            Circle(SKETCH30_R)
        with Locations((29.545, 148)):
            Circle(SKETCH30_R)
        with Locations((44.955, 148)):
            Circle(SKETCH30_R)
        with Locations((60.365, 148)):
            Circle(SKETCH30_R)
        with Locations(Location((60.365, 172, 0), (0, 0, 180))):
            Circle(SKETCH30_R)
        with Locations(Location((44.955, 172, 0), (0, 0, 180))):
            Circle(SKETCH30_R)
        with Locations(Location((29.545, 172, 0), (0, 0, 180))):
            Circle(SKETCH30_R)
        with Locations(Location((14.135, 172, 0), (0, 0, 180))):
            Circle(SKETCH30_R)
    cut_extrude11 = extrude(amount=-CUT_EXTRUDE11_DEPTH, mode=Mode.SUBTRACT)

    # Mirror2: Cut-Extrude10, Cut-Extrude11 across plane
    add(cut_extrude10.mirror(Plane(origin=(0, 0, 0), x_dir=(0.7071067811865476, 0, 0.7071067811865475), z_dir=(0.7071067811865475, 0, -0.7071067811865476))), mode=Mode.SUBTRACT)
    add(cut_extrude11.mirror(Plane(origin=(0, 0, 0), x_dir=(0.7071067811865476, 0, 0.7071067811865475), z_dir=(0.7071067811865475, 0, -0.7071067811865476))), mode=Mode.SUBTRACT)

    # Sketch31 → Cut-Extrude12 (cut, two sides: drawn at the far end of the back side and taken through both)
    with BuildSketch(Plane(origin=(0, 180, 0), x_dir=(1, 0, 0), z_dir=(0, 1, 0)).offset(-CUT_EXTRUDE12_DEPTH_BACK)):
        with Locations((-37.75, 37.75)):
            Rectangle(SKETCH31_W, SKETCH31_H)
    extrude(amount=CUT_EXTRUDE12_DEPTH + CUT_EXTRUDE12_DEPTH_BACK, mode=Mode.SUBTRACT)

    # Sketch32 → Boss-Extrude13 (add)
    with BuildSketch(Plane(origin=(0, 180, 0), x_dir=(1, 0, 0), z_dir=(0, 1, 0))):
        with BuildLine():
            Line((-14, -2.25), (2.25, -2.25))
            Line((2.25, -2.25), (2.25, 14))
            Line((2.25, 14), (-9, 14))
            ThreePointArc((-9, 14), (-12.535533906, 12.535533906), (-14, 9))
            Line((-14, 9), (-14, -2.25))
        make_face()
    extrude(amount=-BOSS_EXTRUDE13_DEPTH)

    # Sketch33 → Cut-Extrude13 (cut, two sides: drawn at the far end of the back side and taken through both)
    with BuildSketch(Plane.XY.offset(2.25).offset(-CUT_EXTRUDE13_DEPTH_BACK)):
        with Locations((16.795834719, 165.594185305)):
            Rectangle(SKETCH33_W, SKETCH33_H)
    extrude(amount=CUT_EXTRUDE13_DEPTH + CUT_EXTRUDE13_DEPTH_BACK, mode=Mode.SUBTRACT)

    # Sketch34 → Boss-Extrude14 (add)
    with BuildSketch(Plane(origin=(0, 140, 0), x_dir=(1, 0, 0), z_dir=(0, 1, 0))):
        with Locations(Location((-5.875, 5.875, 0), (0, 0, 270))):
            Circle(SKETCH34_R)
    extrude(amount=BOSS_EXTRUDE14_DEPTH)

    # Sketch35 → Boss-Extrude15 (add)
    with BuildSketch(Plane.XZ.offset(10)):
        with Locations((5.25, -11.5)):
            Rectangle(SKETCH35_W, SKETCH35_H)
        with Locations((5.25, -0.25)):
            Rectangle(SKETCH35_W, SKETCH35_H)
        with Locations((-11.5, 5.25)):
            Rectangle(SKETCH35_W_2, SKETCH35_H_2)
        with Locations((-0.25, 5.25)):
            Rectangle(SKETCH35_W_2, SKETCH35_H_2)
    extrude(amount=-BOSS_EXTRUDE15_DEPTH)

    # Sketch36 → Cut-Extrude14 (cut)
    with BuildSketch(Plane(origin=(0, -2, 0), x_dir=(1, 0, 0), z_dir=(0, 1, 0))):
        with Locations((-5.875, -5.25)):
            Rectangle(SKETCH36_W, SKETCH36_H)
        with Locations((5.25, 5.875)):
            Rectangle(SKETCH36_W_2, SKETCH36_H_2)
    extrude(amount=-CUT_EXTRUDE14_DEPTH, mode=Mode.SUBTRACT)


with BuildPart() as cut_extrude8_piece_2:
    # of the separate pieces the step leaves, piece 2, a body of its own (cut_extrude8_pieces)
    add(cut_extrude7_kept_piece.part.solids().sort_by_distance((-10.25, 140, -15))[0])

    # Sketch23 → Cut-Extrude9 (cut, through all)
    with BuildSketch(Plane(origin=(0, 180, 0), x_dir=(1, 0, 0), z_dir=(0, 1, 0))):
        with Locations((-15.719387653, 13.178118111)):
            Rectangle(SKETCH23_W, SKETCH23_H)
    extrude(amount=-CUT_EXTRUDE9_DEPTH, mode=Mode.SUBTRACT)


with BuildPart() as body_2:
    # Sketch37 → Boss-Extrude16 (new body)
    with BuildSketch(Plane.XZ.offset(10)):
        with BuildLine():
            Line((-9, -14), (2.25, -14))
            Line((2.25, -14), (2.25, -49))
            Line((2.25, -49), (-9, -49))
            Line((-9, -49), (-9, -31.5))
            Line((-9, -31.5), (-31.5, -9))
            Line((-31.5, -9), (-49, -9))
            Line((-49, -9), (-49, 2.25))
            Line((-49, 2.25), (-14, 2.25))
            Line((-14, 2.25), (-14, -9))
            ThreePointArc((-14, -9), (-12.535533906, -12.535533906), (-9, -14))
        make_face()
    extrude(amount=-BOSS_EXTRUDE16_DEPTH)

    # Fillet4
    fillet4_edges = [body_2.edges().sort_by_distance(p)[0] for p in [
        (2.25, -9.25, -49),
        (-9, -9.25, -49),
        (-49, -9.25, -9),
        (-49, -9.25, 2.25),
    ]]
    fillet(fillet4_edges, radius=FILLET4_R)


solid = Compound([cut_extrude8_piece_1.part, body_2.part])
